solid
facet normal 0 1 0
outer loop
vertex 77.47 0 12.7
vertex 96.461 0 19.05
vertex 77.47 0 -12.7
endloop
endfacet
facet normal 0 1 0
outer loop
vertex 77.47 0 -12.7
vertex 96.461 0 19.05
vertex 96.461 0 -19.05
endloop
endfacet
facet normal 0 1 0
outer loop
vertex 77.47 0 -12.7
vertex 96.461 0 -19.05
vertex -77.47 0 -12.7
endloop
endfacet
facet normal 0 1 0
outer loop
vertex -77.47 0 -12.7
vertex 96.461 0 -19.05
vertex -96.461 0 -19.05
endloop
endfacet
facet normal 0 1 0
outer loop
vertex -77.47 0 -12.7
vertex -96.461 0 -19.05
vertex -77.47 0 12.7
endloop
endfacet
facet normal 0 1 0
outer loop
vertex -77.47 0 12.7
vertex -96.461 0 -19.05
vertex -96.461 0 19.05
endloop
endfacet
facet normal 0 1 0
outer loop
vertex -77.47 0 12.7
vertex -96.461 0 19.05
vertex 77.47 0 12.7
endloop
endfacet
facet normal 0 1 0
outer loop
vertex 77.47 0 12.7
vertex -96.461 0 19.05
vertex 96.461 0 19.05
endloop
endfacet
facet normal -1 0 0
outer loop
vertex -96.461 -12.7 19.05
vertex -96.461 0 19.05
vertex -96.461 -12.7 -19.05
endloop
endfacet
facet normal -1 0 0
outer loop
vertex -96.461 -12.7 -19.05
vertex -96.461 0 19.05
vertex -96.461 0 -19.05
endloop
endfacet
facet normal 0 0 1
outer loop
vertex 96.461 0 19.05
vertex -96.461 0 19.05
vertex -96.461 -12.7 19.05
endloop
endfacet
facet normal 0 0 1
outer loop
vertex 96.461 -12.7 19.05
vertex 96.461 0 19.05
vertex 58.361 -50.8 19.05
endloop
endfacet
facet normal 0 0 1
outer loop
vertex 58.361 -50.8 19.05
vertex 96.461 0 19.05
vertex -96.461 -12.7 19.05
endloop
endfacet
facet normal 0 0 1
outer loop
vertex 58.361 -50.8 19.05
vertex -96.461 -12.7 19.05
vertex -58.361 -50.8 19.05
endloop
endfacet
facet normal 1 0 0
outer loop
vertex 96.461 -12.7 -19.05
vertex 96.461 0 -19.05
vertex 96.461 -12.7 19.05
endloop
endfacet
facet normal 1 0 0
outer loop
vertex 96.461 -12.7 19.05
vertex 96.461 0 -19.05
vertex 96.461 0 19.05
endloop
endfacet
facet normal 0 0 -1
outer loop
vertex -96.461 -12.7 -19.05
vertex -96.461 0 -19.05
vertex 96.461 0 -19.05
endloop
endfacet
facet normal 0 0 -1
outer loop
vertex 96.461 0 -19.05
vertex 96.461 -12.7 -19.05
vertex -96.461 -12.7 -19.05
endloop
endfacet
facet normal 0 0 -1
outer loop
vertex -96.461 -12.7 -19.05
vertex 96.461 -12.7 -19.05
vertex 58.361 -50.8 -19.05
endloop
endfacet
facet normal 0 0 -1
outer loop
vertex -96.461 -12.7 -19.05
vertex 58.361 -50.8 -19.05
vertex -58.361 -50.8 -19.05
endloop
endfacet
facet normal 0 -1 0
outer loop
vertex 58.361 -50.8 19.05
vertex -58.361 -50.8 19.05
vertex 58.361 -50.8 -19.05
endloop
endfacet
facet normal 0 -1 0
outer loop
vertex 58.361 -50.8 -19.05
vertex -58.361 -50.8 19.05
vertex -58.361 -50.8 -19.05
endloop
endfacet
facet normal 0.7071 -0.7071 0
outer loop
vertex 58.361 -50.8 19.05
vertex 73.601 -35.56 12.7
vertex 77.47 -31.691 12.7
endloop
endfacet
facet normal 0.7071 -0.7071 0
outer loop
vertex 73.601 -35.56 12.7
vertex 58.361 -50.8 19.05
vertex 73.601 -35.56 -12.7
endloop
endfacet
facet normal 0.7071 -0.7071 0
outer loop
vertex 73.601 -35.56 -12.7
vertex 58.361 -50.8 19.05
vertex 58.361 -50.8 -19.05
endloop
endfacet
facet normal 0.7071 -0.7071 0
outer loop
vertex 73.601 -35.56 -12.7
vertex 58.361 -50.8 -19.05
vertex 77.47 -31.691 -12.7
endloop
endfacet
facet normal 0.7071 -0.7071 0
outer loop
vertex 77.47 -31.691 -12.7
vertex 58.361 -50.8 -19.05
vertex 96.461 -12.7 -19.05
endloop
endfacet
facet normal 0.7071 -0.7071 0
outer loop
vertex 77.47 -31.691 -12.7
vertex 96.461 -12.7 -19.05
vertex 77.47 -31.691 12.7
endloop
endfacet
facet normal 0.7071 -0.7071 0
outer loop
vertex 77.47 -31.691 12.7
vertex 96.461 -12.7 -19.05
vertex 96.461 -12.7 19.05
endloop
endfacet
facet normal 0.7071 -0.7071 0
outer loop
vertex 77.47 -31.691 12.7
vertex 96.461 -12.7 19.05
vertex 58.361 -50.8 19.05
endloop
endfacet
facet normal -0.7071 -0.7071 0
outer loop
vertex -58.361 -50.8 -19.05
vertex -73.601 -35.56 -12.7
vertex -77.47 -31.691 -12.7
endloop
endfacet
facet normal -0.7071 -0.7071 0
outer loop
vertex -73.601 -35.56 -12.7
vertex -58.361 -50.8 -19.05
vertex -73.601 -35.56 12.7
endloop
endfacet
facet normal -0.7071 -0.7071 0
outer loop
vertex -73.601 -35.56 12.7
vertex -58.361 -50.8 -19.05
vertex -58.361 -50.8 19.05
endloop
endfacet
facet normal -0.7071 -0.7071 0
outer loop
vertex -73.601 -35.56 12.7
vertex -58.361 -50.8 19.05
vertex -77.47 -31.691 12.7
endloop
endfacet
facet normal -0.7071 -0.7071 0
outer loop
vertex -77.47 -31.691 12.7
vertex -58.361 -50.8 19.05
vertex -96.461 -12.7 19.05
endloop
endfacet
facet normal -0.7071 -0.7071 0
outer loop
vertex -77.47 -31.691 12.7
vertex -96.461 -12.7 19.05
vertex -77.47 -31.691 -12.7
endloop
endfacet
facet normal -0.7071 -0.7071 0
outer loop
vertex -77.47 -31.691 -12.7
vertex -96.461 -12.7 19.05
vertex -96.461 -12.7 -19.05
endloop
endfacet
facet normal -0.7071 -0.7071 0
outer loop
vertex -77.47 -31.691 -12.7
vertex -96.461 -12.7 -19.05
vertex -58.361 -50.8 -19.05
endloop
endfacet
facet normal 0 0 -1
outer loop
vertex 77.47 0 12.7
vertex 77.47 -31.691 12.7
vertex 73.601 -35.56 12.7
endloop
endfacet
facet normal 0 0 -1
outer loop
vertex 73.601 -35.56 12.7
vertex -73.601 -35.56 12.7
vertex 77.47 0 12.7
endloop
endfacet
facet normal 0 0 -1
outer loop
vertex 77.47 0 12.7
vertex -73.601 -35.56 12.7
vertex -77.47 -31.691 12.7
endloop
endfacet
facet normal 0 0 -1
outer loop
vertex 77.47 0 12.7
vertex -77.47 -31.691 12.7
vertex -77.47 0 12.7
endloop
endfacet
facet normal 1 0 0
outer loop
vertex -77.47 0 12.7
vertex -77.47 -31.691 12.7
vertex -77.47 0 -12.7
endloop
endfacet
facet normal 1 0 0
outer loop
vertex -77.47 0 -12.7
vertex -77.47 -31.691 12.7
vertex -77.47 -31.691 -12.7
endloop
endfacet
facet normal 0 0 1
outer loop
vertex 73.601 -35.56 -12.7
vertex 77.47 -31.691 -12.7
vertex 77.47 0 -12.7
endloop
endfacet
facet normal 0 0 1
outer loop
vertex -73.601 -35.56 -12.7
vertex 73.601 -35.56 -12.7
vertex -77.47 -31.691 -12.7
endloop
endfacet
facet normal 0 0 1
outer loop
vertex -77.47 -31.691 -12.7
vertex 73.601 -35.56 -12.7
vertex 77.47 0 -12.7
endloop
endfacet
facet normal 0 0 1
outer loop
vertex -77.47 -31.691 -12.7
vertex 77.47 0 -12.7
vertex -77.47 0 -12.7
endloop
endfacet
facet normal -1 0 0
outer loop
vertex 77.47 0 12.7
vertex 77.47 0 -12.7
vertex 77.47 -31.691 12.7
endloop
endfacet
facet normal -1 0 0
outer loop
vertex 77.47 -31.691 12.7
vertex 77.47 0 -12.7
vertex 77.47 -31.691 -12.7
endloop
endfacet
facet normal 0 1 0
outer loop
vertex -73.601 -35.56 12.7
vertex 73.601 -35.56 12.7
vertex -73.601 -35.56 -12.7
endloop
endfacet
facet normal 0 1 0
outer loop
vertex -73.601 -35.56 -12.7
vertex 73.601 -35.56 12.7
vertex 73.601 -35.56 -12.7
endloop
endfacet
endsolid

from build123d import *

# Parameters (mm, degrees)
SKETCH1_W           = 192.921126566
SKETCH1_H           = 38.1
BOSS_EXTRUDE4_DEPTH = 50.8
CHAMFER2_SIZE       = 38.1
SKETCH1_5_W         = 154.94
SKETCH1_5_H         = 25.4
CUT_EXTRUDE1_DEPTH  = 35.56


with BuildPart() as part:
    # Sketch1 → Boss-Extrude4 (new body)
    with BuildSketch(Plane(origin=(0, 0, 0), x_dir=(1, 0, 0), z_dir=(0, 1, 0))):
        Rectangle(SKETCH1_W, SKETCH1_H)
    extrude(amount=-BOSS_EXTRUDE4_DEPTH)

    # Chamfer2
    chamfer2_edges = [part.edges().sort_by_distance(p)[0] for p in [
        (96.460563283, -50.8, 0),
        (-96.460563283, -50.8, 0),
    ]]
    chamfer(chamfer2_edges, length=CHAMFER2_SIZE)

    # Sketch1<5> → Cut-Extrude1 (cut)
    with BuildSketch(Plane(origin=(0, 0, 0), x_dir=(1, 0, 0), z_dir=(0, 1, 0))):
        Rectangle(SKETCH1_5_W, SKETCH1_5_H)
    extrude(amount=-CUT_EXTRUDE1_DEPTH, mode=Mode.SUBTRACT)


solid = part.part
